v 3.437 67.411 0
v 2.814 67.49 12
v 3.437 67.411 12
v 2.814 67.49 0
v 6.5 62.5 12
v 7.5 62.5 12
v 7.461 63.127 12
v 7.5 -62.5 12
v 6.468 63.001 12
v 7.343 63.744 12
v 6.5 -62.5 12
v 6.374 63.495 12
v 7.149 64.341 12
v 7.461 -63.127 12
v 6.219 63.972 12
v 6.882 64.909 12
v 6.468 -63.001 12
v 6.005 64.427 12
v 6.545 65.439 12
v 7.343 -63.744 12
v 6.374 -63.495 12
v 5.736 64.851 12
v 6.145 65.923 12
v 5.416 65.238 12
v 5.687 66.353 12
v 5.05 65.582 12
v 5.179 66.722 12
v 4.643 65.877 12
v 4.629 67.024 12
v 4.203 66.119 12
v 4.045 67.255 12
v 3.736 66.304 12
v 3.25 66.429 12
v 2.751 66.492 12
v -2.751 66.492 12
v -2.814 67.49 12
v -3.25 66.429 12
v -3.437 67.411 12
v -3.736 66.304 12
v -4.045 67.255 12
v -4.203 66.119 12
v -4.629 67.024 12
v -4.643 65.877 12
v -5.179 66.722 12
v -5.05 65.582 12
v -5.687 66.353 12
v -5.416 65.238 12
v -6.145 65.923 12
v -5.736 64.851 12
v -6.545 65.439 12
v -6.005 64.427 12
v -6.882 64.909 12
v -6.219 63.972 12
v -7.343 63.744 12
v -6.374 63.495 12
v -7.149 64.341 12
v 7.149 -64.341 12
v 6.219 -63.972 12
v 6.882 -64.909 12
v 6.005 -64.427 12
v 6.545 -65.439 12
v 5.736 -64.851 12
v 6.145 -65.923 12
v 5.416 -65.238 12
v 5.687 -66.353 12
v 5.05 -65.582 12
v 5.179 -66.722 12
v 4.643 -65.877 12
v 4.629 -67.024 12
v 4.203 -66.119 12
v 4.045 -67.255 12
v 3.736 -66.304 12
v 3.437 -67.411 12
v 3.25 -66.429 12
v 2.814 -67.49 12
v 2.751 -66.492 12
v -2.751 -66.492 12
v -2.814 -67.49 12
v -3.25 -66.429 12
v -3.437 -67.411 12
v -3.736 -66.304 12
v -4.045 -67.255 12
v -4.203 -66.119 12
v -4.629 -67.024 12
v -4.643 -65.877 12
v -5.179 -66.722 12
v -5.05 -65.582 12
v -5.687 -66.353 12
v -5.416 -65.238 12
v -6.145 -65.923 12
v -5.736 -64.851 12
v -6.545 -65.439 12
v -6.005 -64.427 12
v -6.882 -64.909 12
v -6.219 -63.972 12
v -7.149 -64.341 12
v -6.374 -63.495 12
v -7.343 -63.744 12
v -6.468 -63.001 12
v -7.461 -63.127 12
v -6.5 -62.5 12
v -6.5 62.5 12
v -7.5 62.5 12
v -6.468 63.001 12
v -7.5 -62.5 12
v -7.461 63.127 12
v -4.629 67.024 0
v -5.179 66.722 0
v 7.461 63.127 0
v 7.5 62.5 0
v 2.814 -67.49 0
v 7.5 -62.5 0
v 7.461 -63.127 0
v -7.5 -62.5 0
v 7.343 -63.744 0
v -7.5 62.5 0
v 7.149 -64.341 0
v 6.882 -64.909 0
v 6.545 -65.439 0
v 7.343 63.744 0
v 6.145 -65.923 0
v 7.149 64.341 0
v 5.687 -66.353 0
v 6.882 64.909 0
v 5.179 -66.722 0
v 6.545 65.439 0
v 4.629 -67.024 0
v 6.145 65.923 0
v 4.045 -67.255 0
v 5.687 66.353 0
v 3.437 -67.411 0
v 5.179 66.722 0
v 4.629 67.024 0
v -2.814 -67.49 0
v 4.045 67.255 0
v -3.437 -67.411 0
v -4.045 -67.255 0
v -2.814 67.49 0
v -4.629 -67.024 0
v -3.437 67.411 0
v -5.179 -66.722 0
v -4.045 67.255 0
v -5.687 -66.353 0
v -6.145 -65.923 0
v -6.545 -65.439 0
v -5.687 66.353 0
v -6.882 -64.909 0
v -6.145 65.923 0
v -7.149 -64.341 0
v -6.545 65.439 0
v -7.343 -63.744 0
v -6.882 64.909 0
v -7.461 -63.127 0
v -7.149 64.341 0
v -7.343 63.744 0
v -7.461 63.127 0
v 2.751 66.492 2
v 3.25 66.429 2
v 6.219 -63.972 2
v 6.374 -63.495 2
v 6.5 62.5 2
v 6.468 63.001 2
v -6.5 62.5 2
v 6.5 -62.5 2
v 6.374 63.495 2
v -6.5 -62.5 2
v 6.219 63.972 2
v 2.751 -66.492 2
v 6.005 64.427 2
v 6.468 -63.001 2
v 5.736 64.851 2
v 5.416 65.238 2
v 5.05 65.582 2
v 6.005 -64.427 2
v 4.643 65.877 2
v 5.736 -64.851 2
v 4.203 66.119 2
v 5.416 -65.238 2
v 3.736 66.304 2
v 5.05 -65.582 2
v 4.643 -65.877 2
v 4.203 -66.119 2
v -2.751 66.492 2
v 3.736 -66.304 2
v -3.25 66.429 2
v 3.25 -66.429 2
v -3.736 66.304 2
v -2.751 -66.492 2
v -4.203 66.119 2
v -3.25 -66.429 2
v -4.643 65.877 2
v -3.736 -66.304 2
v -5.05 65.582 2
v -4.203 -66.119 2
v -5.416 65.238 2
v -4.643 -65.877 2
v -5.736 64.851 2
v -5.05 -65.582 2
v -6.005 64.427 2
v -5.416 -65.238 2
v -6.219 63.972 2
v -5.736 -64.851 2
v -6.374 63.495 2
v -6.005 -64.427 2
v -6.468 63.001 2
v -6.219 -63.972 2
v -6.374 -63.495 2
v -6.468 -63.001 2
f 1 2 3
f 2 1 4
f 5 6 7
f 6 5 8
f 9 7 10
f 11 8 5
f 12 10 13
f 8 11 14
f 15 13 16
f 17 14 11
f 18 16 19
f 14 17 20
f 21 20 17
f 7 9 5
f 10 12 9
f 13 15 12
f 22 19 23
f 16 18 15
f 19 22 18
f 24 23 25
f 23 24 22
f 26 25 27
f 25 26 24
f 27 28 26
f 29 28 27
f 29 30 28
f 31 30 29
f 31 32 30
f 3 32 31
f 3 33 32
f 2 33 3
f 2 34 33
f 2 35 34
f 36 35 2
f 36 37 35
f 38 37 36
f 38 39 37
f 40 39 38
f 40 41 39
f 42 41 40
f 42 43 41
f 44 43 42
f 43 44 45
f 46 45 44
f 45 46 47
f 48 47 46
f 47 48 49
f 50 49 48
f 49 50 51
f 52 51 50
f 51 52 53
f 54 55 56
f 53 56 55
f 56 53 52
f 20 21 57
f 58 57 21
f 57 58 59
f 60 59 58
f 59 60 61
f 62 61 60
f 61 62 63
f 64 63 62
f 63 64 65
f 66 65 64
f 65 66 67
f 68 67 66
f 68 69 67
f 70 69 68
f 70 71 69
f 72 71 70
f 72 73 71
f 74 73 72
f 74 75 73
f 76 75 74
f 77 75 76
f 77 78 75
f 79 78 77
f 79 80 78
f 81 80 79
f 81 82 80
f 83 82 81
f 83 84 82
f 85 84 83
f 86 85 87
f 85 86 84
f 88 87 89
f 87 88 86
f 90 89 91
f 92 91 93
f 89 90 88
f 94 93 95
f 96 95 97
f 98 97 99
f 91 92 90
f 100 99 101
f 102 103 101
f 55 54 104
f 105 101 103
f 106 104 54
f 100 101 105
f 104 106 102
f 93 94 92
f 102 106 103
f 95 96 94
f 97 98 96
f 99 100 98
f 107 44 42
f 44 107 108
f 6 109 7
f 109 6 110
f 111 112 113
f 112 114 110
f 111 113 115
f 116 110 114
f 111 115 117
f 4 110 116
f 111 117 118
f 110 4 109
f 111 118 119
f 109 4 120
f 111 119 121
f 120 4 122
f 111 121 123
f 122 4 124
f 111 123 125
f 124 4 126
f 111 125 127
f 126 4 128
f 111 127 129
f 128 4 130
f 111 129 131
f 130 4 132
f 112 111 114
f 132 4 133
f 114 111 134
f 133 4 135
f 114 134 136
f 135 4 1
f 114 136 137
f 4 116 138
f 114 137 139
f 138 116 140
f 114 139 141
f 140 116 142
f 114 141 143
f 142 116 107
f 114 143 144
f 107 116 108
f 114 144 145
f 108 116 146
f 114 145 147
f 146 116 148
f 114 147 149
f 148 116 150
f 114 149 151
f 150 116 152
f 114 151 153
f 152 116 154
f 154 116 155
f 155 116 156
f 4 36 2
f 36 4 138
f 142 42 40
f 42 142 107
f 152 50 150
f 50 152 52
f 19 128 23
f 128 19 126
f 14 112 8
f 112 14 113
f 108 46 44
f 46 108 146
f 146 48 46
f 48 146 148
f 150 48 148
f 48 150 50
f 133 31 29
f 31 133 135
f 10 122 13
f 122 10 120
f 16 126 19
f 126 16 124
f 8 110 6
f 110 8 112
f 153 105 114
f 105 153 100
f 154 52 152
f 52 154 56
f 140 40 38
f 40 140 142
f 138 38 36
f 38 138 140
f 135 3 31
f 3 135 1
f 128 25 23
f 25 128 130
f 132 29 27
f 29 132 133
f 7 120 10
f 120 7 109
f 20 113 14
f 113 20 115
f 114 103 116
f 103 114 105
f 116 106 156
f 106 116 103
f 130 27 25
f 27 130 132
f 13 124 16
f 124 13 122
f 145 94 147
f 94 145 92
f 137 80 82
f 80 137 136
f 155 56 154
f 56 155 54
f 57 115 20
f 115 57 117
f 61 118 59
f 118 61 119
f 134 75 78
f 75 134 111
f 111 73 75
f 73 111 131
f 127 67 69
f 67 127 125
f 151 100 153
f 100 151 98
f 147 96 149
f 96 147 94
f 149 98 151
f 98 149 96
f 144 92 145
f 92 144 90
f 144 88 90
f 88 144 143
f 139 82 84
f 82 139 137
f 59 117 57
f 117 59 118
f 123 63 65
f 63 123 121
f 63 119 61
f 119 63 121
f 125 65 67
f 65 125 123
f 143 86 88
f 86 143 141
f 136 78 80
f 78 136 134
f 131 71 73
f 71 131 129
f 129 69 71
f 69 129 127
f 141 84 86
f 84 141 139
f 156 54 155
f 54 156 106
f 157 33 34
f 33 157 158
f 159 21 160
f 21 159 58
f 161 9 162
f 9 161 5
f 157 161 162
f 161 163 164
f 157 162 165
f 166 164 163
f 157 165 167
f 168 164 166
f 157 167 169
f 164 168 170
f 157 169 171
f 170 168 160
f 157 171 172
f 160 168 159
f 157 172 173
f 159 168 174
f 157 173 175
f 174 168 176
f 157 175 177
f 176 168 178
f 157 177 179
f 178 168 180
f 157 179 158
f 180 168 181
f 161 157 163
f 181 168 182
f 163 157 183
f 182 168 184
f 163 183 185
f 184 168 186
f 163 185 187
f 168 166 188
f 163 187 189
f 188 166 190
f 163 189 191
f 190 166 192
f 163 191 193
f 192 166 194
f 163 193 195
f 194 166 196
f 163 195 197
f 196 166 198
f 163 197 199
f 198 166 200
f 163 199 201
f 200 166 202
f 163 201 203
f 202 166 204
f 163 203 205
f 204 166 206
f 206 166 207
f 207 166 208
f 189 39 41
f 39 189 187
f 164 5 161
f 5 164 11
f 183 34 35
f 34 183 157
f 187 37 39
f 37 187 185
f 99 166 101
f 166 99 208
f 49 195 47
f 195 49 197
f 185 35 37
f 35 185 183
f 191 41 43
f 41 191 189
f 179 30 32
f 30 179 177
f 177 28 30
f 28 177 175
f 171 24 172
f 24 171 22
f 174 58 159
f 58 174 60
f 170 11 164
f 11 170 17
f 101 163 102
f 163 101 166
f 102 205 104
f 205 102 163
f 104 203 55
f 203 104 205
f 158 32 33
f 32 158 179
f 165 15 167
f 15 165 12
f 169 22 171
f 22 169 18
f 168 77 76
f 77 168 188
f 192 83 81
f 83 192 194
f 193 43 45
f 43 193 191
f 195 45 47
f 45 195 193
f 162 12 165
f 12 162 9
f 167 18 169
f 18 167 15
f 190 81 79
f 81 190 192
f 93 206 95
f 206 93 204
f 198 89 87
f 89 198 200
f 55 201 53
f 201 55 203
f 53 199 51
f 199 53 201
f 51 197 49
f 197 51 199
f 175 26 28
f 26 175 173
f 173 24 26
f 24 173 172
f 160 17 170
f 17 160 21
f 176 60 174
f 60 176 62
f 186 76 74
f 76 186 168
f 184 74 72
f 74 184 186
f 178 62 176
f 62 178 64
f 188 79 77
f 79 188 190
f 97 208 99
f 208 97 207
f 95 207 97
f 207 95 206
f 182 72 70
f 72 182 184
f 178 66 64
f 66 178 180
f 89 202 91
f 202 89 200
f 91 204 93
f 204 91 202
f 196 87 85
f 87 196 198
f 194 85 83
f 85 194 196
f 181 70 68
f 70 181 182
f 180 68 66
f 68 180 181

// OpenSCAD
$fn = 50;


difference() {
	union() {
		hull() {
			translate(v = [-2.5000000000, 62.5000000000, 0]) {
				cylinder(h = 12, r = 5);
			}
			translate(v = [2.5000000000, 62.5000000000, 0]) {
				cylinder(h = 12, r = 5);
			}
			translate(v = [-2.5000000000, -62.5000000000, 0]) {
				cylinder(h = 12, r = 5);
			}
			translate(v = [2.5000000000, -62.5000000000, 0]) {
				cylinder(h = 12, r = 5);
			}
		}
	}
	union() {
		translate(v = [0, 0, 2]) {
			hull() {
				translate(v = [-2.5000000000, 62.5000000000, 0]) {
					cylinder(h = 10, r = 4);
				}
				translate(v = [2.5000000000, 62.5000000000, 0]) {
					cylinder(h = 10, r = 4);
				}
				translate(v = [-2.5000000000, -62.5000000000, 0]) {
					cylinder(h = 10, r = 4);
				}
				translate(v = [2.5000000000, -62.5000000000, 0]) {
					cylinder(h = 10, r = 4);
				}
			}
		}
	}
}
